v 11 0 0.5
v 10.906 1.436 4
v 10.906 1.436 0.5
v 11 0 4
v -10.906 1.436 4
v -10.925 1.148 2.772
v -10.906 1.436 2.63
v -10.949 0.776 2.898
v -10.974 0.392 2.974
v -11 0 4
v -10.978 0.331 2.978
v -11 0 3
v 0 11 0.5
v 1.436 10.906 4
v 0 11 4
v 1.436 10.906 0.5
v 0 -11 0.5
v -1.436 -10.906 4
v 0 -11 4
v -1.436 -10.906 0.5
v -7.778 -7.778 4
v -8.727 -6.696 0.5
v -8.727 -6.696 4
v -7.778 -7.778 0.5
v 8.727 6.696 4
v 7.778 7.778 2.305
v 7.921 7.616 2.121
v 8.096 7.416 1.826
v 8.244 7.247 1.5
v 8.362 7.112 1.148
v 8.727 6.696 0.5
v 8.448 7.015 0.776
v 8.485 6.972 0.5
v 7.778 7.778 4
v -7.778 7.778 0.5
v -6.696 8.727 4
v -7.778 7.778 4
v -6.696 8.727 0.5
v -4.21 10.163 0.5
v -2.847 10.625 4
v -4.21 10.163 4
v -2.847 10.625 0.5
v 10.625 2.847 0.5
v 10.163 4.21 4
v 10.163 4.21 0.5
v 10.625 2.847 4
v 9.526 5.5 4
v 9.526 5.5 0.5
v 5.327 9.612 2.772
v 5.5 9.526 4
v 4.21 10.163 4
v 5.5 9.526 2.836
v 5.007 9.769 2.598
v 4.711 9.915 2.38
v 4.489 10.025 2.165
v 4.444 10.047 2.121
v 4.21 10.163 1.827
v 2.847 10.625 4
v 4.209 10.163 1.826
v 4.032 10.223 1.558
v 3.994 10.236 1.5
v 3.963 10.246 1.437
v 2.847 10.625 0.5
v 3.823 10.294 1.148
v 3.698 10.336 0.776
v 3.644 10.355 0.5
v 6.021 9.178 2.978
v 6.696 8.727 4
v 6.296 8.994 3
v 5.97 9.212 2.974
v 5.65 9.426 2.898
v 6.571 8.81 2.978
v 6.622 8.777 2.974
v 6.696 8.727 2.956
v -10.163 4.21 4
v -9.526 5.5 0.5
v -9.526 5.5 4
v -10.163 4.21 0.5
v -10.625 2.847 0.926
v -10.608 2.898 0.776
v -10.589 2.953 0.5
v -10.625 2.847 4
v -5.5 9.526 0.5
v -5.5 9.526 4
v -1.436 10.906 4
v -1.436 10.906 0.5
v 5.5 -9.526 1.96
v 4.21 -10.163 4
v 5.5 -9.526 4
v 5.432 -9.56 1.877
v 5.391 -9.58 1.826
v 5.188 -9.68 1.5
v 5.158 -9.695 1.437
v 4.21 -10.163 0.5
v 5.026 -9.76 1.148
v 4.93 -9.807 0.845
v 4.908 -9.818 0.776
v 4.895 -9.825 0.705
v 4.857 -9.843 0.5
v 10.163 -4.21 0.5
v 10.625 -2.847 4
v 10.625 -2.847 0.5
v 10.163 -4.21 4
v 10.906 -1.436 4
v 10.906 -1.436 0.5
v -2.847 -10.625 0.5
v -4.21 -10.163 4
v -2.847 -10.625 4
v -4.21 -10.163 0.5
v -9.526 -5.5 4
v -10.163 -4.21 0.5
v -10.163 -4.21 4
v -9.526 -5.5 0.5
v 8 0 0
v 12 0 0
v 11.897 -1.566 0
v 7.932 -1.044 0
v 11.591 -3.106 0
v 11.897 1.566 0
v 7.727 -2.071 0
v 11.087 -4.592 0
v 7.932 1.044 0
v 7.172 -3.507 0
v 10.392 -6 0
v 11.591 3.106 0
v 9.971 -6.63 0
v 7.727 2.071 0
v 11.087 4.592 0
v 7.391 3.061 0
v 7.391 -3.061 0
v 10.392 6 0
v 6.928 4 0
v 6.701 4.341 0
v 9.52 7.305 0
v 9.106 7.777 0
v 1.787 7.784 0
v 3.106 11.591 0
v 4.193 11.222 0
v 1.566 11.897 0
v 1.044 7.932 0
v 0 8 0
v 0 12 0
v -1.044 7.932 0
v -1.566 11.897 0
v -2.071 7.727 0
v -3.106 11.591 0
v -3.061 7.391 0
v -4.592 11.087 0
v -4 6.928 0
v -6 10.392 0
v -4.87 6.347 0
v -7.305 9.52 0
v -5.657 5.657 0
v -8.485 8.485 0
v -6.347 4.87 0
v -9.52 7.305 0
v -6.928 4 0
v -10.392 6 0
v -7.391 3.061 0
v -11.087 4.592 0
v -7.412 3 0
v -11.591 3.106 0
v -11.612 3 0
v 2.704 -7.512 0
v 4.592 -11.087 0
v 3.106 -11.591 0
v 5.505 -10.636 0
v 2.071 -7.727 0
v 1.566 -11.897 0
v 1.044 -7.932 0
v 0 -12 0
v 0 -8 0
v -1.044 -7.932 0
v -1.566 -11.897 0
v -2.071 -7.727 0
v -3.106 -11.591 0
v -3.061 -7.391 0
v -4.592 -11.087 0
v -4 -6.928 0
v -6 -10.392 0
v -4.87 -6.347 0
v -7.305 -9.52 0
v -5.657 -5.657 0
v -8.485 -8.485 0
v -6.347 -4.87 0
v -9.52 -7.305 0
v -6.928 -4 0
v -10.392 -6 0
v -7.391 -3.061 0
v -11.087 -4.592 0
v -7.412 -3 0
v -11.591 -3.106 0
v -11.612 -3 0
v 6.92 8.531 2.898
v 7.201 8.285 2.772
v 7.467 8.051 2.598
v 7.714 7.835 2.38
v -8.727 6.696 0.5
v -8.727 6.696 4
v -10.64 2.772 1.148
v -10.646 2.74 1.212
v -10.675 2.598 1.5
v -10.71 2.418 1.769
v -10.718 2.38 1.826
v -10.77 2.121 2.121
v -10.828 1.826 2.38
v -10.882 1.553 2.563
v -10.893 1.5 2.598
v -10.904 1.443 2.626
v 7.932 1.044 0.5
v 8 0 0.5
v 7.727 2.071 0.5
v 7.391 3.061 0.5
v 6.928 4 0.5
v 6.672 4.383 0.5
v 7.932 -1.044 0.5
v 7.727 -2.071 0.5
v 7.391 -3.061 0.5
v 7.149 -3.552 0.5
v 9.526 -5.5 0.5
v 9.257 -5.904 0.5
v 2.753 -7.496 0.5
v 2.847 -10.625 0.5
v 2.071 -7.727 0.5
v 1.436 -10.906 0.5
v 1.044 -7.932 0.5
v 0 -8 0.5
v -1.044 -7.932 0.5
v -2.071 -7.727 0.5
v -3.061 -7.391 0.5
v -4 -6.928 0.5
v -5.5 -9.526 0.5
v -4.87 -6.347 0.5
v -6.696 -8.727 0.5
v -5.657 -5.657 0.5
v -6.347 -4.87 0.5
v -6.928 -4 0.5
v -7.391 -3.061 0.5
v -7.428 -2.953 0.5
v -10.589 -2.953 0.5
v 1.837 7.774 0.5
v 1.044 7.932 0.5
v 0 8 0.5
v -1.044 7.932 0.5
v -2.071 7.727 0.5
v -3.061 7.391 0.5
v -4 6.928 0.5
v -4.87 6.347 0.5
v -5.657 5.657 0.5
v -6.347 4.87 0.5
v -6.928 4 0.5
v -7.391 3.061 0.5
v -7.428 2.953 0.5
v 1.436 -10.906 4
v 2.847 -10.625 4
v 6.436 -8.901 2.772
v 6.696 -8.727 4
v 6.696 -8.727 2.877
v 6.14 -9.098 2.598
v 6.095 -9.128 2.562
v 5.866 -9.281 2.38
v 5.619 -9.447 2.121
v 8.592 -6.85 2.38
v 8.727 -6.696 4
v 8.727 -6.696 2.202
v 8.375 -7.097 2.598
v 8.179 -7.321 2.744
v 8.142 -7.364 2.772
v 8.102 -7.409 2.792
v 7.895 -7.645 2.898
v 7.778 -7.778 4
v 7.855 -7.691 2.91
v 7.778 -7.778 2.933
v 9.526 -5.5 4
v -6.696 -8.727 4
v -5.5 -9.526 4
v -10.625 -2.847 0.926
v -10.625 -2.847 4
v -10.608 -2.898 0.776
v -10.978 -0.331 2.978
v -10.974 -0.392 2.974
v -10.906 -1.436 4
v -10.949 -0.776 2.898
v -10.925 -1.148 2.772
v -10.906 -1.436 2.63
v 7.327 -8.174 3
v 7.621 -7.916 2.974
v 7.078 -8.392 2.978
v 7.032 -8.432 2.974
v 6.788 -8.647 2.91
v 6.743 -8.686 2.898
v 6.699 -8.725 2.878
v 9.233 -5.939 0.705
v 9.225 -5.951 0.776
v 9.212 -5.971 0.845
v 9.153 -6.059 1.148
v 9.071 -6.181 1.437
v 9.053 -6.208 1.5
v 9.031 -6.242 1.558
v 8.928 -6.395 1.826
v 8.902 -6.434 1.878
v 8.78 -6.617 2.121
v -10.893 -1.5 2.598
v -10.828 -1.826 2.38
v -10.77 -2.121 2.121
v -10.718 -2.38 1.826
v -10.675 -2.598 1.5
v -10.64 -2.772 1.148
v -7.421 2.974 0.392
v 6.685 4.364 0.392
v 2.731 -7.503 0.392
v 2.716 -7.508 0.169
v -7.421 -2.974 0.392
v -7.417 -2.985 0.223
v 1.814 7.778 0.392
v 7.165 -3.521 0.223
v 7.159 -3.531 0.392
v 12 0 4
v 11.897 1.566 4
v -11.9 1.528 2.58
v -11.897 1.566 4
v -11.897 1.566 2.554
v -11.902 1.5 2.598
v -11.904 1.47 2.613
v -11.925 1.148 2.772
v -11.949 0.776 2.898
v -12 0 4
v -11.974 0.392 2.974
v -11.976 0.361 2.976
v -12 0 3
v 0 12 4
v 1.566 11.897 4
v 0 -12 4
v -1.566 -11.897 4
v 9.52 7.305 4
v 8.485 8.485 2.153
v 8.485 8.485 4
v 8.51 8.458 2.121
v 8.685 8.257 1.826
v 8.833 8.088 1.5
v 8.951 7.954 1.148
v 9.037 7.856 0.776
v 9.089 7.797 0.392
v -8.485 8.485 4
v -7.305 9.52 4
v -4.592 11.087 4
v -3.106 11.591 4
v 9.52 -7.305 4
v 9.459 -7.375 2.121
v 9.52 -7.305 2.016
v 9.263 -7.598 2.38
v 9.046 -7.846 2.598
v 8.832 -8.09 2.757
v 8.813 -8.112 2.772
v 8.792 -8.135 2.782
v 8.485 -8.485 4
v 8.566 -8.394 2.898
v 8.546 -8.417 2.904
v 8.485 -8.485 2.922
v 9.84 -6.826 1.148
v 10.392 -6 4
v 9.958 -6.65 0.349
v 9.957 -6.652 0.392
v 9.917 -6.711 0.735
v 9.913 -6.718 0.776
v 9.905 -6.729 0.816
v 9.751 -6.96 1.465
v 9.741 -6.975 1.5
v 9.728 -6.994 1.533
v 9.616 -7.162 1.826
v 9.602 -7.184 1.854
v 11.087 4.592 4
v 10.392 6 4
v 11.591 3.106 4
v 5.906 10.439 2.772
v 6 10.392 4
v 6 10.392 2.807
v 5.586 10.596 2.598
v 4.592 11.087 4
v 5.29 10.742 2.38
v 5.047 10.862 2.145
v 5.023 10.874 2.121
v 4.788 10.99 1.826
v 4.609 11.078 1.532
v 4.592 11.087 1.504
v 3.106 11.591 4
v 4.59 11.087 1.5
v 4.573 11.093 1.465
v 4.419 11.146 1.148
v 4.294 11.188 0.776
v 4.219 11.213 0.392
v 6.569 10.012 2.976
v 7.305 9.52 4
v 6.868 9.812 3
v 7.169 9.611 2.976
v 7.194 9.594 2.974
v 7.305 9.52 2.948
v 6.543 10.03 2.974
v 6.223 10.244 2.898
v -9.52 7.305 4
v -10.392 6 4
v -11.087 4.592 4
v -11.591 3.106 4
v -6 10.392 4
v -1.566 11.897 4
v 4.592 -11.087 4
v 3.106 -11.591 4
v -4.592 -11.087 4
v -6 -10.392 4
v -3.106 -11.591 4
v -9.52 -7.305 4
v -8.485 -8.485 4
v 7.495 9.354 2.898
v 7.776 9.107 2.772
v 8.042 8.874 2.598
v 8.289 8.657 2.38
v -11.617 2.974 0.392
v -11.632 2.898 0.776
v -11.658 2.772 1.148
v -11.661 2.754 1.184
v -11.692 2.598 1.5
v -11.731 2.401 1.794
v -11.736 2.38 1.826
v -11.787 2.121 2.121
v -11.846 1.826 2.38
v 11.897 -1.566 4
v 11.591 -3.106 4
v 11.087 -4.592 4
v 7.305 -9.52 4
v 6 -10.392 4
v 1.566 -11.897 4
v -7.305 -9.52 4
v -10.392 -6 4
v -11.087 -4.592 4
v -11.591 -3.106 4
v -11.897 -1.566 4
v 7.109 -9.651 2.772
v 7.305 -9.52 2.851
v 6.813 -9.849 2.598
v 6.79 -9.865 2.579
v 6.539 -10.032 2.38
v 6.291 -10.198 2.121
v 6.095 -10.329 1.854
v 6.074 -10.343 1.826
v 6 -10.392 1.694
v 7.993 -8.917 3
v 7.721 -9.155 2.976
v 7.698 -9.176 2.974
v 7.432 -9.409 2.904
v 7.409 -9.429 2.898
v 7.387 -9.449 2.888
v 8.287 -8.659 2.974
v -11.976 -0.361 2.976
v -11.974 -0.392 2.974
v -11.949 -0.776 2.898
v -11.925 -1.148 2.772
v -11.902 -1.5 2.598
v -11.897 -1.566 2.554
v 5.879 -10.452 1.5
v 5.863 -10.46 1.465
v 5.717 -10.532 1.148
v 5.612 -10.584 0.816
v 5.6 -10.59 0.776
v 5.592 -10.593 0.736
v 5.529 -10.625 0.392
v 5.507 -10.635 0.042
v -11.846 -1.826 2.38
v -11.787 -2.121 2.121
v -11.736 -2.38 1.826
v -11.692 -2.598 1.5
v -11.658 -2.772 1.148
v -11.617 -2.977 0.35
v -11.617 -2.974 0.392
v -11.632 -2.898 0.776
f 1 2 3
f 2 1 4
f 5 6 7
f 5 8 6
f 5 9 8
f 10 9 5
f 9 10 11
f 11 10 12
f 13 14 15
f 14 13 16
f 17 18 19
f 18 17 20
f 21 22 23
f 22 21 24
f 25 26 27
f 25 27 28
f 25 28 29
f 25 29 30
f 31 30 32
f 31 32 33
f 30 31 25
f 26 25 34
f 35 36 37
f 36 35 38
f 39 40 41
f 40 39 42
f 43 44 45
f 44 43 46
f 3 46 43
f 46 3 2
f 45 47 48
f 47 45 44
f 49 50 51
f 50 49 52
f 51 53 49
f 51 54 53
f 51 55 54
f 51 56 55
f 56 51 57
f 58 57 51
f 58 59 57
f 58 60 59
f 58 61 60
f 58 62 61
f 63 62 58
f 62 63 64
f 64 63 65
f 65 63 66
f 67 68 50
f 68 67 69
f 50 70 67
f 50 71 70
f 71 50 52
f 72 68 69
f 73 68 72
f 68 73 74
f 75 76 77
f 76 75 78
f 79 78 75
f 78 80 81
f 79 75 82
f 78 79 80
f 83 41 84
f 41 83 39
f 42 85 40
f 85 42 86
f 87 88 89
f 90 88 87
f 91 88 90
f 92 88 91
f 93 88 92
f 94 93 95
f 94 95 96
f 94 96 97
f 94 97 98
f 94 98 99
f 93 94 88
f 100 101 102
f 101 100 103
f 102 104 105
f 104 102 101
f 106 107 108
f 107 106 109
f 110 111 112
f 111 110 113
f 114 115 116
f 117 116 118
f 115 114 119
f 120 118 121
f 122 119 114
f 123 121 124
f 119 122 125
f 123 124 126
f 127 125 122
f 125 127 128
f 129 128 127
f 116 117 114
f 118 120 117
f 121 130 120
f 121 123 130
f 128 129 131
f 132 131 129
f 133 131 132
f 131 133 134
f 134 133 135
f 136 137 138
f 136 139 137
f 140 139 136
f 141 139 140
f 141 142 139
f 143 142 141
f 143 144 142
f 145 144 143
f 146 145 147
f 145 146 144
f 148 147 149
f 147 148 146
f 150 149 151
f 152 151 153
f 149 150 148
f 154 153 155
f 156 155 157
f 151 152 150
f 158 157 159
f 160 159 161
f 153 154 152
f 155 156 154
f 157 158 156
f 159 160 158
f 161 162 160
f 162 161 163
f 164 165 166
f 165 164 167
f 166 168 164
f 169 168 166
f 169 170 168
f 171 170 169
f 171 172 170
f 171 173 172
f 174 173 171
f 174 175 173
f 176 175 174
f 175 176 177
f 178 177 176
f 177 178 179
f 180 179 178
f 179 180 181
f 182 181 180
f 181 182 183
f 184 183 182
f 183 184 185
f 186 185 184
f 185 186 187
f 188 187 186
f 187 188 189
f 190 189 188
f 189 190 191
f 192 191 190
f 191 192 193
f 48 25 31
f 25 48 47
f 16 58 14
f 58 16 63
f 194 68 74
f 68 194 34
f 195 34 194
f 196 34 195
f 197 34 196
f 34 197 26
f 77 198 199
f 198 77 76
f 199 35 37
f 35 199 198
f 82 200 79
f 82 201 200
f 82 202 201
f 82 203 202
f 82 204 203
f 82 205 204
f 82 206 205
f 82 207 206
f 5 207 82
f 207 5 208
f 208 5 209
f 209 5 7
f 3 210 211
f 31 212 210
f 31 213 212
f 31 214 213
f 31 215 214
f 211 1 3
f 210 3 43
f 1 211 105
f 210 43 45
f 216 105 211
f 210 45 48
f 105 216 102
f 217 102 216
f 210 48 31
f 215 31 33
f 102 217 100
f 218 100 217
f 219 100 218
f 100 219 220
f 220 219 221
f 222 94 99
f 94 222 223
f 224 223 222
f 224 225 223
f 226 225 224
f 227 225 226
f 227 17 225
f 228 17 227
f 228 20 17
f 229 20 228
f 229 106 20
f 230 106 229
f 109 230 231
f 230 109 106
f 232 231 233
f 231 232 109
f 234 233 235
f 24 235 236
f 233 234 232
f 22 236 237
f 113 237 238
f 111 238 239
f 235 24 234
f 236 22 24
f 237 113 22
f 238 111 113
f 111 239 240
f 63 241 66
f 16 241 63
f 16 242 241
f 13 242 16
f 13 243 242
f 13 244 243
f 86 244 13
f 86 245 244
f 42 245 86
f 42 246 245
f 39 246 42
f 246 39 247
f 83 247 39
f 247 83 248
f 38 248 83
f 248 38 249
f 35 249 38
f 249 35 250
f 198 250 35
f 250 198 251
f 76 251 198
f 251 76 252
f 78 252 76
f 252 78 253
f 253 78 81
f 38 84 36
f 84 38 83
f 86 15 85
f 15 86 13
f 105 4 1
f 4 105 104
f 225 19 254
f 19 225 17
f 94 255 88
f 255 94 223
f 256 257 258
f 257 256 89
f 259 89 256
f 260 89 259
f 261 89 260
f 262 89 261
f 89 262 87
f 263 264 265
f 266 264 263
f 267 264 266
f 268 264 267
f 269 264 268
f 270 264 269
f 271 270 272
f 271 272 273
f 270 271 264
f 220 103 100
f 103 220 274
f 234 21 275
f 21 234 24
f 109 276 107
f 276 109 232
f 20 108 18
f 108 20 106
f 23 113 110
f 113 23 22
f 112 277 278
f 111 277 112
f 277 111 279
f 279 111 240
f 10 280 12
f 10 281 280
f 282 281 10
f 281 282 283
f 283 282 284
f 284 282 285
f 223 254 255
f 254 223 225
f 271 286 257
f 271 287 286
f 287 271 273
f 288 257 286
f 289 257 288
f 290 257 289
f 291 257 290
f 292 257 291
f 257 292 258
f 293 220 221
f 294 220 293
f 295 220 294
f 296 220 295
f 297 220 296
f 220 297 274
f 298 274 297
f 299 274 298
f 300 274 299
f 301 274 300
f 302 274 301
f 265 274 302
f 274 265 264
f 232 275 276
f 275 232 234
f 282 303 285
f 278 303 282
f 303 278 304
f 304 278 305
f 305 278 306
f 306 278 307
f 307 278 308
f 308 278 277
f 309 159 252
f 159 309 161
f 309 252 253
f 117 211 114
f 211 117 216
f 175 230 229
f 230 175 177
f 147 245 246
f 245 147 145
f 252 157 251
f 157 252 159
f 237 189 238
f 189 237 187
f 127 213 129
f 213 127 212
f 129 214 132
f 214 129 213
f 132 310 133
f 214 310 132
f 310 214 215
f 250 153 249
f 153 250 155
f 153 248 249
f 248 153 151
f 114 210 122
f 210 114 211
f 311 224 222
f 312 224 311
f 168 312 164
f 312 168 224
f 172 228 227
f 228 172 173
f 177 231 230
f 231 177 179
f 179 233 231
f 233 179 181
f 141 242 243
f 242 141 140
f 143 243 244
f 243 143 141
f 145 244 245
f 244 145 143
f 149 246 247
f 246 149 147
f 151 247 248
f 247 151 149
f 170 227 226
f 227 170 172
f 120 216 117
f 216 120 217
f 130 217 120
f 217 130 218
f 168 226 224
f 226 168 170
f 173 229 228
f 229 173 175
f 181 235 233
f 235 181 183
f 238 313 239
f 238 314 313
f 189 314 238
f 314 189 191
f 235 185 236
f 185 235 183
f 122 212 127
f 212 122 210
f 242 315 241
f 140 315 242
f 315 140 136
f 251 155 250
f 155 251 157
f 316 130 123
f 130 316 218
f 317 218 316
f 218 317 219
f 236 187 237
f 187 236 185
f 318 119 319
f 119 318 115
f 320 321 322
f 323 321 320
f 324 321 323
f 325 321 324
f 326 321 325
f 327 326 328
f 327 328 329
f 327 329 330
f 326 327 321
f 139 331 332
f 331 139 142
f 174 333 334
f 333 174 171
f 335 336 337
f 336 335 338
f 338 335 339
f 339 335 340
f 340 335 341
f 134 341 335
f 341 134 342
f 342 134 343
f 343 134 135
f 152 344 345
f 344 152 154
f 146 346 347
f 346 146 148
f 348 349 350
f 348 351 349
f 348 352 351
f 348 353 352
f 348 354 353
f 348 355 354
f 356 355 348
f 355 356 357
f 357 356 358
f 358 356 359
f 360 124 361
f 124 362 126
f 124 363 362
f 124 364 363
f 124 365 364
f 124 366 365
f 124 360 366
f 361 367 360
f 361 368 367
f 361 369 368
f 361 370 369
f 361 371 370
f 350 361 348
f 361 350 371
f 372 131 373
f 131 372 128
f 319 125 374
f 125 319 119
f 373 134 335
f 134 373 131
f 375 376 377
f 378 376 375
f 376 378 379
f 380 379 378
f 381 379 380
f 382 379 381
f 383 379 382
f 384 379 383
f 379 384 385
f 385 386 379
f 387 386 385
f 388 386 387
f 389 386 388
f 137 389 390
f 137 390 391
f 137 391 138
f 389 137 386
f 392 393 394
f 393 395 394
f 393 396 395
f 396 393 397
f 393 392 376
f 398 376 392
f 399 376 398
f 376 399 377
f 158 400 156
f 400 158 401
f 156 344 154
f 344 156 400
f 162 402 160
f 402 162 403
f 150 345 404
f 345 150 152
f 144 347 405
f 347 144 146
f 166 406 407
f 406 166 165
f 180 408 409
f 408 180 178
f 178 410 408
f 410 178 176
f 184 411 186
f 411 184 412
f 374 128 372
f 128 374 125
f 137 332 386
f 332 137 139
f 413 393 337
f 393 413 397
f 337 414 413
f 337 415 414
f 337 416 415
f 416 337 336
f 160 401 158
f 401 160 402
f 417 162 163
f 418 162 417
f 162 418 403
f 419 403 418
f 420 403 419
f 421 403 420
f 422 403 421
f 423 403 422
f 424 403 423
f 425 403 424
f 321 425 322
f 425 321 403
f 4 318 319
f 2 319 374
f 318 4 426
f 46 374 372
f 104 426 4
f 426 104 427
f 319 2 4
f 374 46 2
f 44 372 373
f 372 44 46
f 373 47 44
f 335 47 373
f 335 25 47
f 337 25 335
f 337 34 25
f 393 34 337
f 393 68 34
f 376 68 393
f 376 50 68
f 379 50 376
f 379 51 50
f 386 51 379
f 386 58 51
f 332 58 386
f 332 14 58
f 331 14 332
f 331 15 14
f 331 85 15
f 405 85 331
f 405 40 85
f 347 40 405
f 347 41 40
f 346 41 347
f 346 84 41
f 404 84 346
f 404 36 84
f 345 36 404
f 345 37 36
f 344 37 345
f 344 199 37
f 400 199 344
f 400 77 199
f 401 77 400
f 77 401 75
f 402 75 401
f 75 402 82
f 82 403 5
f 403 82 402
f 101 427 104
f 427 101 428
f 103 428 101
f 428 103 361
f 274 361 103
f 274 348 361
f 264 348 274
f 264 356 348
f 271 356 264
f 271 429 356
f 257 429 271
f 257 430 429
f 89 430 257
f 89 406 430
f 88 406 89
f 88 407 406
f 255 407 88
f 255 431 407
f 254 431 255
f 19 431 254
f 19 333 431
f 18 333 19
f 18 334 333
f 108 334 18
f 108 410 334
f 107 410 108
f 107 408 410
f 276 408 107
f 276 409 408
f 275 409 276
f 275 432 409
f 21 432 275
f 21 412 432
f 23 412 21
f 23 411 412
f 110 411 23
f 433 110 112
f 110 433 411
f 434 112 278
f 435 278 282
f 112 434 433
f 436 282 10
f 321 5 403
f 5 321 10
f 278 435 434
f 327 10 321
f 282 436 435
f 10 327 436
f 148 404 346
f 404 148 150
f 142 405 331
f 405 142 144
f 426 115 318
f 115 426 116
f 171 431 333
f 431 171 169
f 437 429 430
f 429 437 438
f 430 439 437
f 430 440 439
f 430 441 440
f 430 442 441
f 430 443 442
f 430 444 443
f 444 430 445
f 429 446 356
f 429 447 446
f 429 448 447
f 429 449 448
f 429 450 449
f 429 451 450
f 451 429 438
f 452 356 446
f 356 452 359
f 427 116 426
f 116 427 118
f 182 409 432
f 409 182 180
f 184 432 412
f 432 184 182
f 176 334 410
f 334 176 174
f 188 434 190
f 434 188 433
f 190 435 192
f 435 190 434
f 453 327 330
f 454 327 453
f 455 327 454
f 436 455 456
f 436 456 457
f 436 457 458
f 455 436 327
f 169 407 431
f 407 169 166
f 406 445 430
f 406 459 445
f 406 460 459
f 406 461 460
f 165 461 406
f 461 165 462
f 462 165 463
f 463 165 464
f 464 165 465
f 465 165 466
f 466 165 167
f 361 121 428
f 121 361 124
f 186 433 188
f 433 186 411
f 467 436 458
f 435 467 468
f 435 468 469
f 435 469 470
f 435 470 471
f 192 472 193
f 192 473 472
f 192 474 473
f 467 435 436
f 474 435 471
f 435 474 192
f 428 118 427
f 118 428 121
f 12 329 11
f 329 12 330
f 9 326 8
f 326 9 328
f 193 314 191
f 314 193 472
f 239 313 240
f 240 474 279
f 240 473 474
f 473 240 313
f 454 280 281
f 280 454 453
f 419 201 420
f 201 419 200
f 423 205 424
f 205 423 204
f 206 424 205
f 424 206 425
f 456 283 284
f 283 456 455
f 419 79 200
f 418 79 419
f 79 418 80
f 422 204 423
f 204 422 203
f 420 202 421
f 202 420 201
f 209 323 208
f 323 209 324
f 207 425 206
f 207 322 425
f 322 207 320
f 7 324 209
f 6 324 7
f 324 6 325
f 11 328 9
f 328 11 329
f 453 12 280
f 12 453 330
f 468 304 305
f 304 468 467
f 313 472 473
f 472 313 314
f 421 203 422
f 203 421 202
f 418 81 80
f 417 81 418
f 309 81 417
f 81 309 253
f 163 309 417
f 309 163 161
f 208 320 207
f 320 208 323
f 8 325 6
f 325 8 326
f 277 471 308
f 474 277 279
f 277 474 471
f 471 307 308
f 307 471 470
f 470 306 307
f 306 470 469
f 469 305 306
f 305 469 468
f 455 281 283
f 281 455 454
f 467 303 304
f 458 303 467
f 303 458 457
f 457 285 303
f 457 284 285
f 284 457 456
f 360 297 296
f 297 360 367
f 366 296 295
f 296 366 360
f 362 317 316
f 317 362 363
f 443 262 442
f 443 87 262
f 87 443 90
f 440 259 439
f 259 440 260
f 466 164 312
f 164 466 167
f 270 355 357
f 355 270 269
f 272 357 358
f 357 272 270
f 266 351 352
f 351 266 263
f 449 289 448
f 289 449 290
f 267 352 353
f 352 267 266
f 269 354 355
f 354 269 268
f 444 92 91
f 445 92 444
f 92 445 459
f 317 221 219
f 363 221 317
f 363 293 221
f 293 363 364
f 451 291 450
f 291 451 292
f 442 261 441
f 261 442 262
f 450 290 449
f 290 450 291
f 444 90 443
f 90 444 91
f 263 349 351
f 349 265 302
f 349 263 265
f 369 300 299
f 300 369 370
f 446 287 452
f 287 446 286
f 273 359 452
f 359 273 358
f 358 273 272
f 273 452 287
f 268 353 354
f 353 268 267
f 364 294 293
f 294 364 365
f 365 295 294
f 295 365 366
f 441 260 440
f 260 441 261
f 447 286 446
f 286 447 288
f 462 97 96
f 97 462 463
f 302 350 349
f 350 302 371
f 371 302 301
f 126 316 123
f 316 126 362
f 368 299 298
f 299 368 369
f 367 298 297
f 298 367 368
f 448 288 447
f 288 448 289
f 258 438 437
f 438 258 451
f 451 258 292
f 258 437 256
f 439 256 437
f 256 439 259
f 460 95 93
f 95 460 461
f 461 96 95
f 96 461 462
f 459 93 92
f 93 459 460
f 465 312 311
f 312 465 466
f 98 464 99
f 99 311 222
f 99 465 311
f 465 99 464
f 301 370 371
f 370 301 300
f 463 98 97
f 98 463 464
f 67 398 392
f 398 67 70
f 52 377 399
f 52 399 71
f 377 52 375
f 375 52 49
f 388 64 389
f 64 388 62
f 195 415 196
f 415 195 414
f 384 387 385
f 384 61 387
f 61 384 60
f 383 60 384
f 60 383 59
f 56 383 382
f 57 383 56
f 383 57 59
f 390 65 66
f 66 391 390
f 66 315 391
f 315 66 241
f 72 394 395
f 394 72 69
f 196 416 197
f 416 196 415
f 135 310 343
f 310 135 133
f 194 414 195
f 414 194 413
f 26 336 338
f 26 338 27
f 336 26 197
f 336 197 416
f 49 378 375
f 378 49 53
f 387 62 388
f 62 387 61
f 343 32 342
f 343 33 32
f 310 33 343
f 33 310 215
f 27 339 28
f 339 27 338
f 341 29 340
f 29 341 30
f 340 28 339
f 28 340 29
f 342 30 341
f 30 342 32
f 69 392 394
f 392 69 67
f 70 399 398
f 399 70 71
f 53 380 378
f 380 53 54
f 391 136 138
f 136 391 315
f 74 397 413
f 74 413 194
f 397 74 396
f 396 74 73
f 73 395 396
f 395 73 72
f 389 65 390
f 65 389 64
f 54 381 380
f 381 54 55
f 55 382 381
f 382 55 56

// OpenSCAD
// file: ../build_environments.scad
// build_environments.scad: modules to build level sections
//

module pool(diameter=10.0, wall_height=2.0, step_width=3.0, connections=[])
{
    difference() {
        union() {
        difference() {
            cylinder(h=0.5,r1=diameter+step_width,r2=diameter+step_width,$fn=48);
            translate([0,0,-0.1])
                cylinder(h=0.7,r1=diameter,r2=diameter,$fn=48);
        }
        difference() {
            cylinder(h=wall_height,r1=diameter+step_width+1.0,r2=diameter+step_width+1.0,$fn=48);
            translate([0,0,-0.1])
                cylinder(h=wall_height+0.2,r1=diameter+step_width,r2=diameter+step_width,$fn=48);
        }
        }
    
        for (c = connections)
        {
            rotate([0,90,0]) {
                angle = atan2(c[1],c[0]);
                rotate([-angle,0,0]) {
                    cylinder(h=diameter+5.0,r1=c[2],r2=c[2],$fn=48);
                }
            }
        }
    }
}

module straight(length=10.0, width=2.0, dy1=0.0, dy2=0.0, dz=0.0)
{
    dims = [0, 0, 0, 0, 0, (dz/length)];
    matrix = [
        [ 1, dims[0], dims[1], 0 ],
        [ dims[2], 1, dims[4], 0 ],
        [ dims[5], dims[3], 1, 0 ],
        [ 0, 0, 0, 1 ]
    ];
    multmatrix(matrix)
    difference() {
        translate([dy1,0,0])
        union() {
            rotate([0,90,0]) {
                difference() {
                    cylinder(h=(length-dy1-dy2),r1=width+1.0,r2=width+1.0,$fn=24);
                    translate([0,0,-0.1])
                        cylinder(h=(length-dy1-dy2+0.2),r1=width,r2=width,$fn=24);
                }
                difference() {
                    cylinder(h=1.0,r1=width+2.0,r2=width+2.0,$fn=24);
                    translate([0,0,-0.1])
                        cylinder(h=1.2,r1=width,r2=width,$fn=24);
                }
                translate([0,0,(length-dy1-dy2)-1.0]) {
                    difference() {
                        cylinder(h=1.0,r1=width+2.0,r2=width+2.0,$fn=24);
                        translate([0,0,-0.1])
                            cylinder(h=1.2,r1=width,r2=width,$fn=24);
                    }
                }
            }
        }
        translate([0,0,-(2*width+4.0)/2])
            cube([3*length,3*length,2*width+4.0],center=true);
    }
}

module curve(p0=[0,0], center=[0,0], dir=1, angle=0.0, width=2.0)
{
    radius = sqrt((p0[0]-center[0])*(p0[0]-center[0]) + (p0[1]-center[1])*(p0[1]-center[1]));
    if (dir == 0) {
        difference() {
            rotate([0,0,-90])
            difference() {
                rotate_extrude(angle = angle, convexity = 10, $fn=32)
                    translate([radius, 0, 0])
                        circle(r = width+1.0,$fn=24);
                rotate([0,0,-1.0])
                    rotate_extrude(angle = angle+2.0, convexity = 10, $fn=32)
                        translate([radius, 0, 0])
                            circle(r = width,$fn=24);
            }
            translate([0,0,-(2*width+4.0)/2])
                cube([5*radius,5*radius,2*width+4.0],center=true);
        }
    }
    else {
        difference() {
            rotate([0,0,90])
            difference() {
                rotate_extrude(angle = -angle, convexity = 10, $fn=32)
                    translate([radius, 0, 0])
                        circle(r = width+1.0,$fn=24);
                rotate([0,0,1.0])
                    rotate_extrude(angle = -angle-2.0, convexity = 10, $fn=32)
                        translate([radius, 0, 0])
                            circle(r = width,$fn=24);
            }
            translate([0,0,-(2*width+4.0)/2])
                cube([5*radius,5*radius,2*width+4.0],center=true);
        }
    }

}

// test pool
//pool(diameter=12.0000, wall_height=3.0000, step_width=3.0000, connections=[[0.0000,-26.0000,2.0000], [23.6074,0.0000,2.0000]]);

// test straight, slope
//straight(length=26.0000, width=2.0000, dy1=11.8322, dy2=6.7082, dz=0.0000);
//straight(length=29.1549, width=12.0000, dy1=0.0000, dy2=0.0000, dz=-15.0000);

// test curve
//curve(p0=[23.6074, 0.0000], center=[23.6074, 5.0000], dir=0, angle=60.1011, width=2.0000);
//curve(p0=[33.6426, 12.4219], center=[37.9771, 9.9295], dir=1, angle=120.4627, width=2.0000);
// main file
use <../build_environments.scad>;
pool(diameter=8.0000, wall_height=4.0000, step_width=3.0000, connections=[[-10.0000,0.0000,3.0000], [9.9348,-11.0843,3.0000], [8.7500,12.5000,3.0000]]);
